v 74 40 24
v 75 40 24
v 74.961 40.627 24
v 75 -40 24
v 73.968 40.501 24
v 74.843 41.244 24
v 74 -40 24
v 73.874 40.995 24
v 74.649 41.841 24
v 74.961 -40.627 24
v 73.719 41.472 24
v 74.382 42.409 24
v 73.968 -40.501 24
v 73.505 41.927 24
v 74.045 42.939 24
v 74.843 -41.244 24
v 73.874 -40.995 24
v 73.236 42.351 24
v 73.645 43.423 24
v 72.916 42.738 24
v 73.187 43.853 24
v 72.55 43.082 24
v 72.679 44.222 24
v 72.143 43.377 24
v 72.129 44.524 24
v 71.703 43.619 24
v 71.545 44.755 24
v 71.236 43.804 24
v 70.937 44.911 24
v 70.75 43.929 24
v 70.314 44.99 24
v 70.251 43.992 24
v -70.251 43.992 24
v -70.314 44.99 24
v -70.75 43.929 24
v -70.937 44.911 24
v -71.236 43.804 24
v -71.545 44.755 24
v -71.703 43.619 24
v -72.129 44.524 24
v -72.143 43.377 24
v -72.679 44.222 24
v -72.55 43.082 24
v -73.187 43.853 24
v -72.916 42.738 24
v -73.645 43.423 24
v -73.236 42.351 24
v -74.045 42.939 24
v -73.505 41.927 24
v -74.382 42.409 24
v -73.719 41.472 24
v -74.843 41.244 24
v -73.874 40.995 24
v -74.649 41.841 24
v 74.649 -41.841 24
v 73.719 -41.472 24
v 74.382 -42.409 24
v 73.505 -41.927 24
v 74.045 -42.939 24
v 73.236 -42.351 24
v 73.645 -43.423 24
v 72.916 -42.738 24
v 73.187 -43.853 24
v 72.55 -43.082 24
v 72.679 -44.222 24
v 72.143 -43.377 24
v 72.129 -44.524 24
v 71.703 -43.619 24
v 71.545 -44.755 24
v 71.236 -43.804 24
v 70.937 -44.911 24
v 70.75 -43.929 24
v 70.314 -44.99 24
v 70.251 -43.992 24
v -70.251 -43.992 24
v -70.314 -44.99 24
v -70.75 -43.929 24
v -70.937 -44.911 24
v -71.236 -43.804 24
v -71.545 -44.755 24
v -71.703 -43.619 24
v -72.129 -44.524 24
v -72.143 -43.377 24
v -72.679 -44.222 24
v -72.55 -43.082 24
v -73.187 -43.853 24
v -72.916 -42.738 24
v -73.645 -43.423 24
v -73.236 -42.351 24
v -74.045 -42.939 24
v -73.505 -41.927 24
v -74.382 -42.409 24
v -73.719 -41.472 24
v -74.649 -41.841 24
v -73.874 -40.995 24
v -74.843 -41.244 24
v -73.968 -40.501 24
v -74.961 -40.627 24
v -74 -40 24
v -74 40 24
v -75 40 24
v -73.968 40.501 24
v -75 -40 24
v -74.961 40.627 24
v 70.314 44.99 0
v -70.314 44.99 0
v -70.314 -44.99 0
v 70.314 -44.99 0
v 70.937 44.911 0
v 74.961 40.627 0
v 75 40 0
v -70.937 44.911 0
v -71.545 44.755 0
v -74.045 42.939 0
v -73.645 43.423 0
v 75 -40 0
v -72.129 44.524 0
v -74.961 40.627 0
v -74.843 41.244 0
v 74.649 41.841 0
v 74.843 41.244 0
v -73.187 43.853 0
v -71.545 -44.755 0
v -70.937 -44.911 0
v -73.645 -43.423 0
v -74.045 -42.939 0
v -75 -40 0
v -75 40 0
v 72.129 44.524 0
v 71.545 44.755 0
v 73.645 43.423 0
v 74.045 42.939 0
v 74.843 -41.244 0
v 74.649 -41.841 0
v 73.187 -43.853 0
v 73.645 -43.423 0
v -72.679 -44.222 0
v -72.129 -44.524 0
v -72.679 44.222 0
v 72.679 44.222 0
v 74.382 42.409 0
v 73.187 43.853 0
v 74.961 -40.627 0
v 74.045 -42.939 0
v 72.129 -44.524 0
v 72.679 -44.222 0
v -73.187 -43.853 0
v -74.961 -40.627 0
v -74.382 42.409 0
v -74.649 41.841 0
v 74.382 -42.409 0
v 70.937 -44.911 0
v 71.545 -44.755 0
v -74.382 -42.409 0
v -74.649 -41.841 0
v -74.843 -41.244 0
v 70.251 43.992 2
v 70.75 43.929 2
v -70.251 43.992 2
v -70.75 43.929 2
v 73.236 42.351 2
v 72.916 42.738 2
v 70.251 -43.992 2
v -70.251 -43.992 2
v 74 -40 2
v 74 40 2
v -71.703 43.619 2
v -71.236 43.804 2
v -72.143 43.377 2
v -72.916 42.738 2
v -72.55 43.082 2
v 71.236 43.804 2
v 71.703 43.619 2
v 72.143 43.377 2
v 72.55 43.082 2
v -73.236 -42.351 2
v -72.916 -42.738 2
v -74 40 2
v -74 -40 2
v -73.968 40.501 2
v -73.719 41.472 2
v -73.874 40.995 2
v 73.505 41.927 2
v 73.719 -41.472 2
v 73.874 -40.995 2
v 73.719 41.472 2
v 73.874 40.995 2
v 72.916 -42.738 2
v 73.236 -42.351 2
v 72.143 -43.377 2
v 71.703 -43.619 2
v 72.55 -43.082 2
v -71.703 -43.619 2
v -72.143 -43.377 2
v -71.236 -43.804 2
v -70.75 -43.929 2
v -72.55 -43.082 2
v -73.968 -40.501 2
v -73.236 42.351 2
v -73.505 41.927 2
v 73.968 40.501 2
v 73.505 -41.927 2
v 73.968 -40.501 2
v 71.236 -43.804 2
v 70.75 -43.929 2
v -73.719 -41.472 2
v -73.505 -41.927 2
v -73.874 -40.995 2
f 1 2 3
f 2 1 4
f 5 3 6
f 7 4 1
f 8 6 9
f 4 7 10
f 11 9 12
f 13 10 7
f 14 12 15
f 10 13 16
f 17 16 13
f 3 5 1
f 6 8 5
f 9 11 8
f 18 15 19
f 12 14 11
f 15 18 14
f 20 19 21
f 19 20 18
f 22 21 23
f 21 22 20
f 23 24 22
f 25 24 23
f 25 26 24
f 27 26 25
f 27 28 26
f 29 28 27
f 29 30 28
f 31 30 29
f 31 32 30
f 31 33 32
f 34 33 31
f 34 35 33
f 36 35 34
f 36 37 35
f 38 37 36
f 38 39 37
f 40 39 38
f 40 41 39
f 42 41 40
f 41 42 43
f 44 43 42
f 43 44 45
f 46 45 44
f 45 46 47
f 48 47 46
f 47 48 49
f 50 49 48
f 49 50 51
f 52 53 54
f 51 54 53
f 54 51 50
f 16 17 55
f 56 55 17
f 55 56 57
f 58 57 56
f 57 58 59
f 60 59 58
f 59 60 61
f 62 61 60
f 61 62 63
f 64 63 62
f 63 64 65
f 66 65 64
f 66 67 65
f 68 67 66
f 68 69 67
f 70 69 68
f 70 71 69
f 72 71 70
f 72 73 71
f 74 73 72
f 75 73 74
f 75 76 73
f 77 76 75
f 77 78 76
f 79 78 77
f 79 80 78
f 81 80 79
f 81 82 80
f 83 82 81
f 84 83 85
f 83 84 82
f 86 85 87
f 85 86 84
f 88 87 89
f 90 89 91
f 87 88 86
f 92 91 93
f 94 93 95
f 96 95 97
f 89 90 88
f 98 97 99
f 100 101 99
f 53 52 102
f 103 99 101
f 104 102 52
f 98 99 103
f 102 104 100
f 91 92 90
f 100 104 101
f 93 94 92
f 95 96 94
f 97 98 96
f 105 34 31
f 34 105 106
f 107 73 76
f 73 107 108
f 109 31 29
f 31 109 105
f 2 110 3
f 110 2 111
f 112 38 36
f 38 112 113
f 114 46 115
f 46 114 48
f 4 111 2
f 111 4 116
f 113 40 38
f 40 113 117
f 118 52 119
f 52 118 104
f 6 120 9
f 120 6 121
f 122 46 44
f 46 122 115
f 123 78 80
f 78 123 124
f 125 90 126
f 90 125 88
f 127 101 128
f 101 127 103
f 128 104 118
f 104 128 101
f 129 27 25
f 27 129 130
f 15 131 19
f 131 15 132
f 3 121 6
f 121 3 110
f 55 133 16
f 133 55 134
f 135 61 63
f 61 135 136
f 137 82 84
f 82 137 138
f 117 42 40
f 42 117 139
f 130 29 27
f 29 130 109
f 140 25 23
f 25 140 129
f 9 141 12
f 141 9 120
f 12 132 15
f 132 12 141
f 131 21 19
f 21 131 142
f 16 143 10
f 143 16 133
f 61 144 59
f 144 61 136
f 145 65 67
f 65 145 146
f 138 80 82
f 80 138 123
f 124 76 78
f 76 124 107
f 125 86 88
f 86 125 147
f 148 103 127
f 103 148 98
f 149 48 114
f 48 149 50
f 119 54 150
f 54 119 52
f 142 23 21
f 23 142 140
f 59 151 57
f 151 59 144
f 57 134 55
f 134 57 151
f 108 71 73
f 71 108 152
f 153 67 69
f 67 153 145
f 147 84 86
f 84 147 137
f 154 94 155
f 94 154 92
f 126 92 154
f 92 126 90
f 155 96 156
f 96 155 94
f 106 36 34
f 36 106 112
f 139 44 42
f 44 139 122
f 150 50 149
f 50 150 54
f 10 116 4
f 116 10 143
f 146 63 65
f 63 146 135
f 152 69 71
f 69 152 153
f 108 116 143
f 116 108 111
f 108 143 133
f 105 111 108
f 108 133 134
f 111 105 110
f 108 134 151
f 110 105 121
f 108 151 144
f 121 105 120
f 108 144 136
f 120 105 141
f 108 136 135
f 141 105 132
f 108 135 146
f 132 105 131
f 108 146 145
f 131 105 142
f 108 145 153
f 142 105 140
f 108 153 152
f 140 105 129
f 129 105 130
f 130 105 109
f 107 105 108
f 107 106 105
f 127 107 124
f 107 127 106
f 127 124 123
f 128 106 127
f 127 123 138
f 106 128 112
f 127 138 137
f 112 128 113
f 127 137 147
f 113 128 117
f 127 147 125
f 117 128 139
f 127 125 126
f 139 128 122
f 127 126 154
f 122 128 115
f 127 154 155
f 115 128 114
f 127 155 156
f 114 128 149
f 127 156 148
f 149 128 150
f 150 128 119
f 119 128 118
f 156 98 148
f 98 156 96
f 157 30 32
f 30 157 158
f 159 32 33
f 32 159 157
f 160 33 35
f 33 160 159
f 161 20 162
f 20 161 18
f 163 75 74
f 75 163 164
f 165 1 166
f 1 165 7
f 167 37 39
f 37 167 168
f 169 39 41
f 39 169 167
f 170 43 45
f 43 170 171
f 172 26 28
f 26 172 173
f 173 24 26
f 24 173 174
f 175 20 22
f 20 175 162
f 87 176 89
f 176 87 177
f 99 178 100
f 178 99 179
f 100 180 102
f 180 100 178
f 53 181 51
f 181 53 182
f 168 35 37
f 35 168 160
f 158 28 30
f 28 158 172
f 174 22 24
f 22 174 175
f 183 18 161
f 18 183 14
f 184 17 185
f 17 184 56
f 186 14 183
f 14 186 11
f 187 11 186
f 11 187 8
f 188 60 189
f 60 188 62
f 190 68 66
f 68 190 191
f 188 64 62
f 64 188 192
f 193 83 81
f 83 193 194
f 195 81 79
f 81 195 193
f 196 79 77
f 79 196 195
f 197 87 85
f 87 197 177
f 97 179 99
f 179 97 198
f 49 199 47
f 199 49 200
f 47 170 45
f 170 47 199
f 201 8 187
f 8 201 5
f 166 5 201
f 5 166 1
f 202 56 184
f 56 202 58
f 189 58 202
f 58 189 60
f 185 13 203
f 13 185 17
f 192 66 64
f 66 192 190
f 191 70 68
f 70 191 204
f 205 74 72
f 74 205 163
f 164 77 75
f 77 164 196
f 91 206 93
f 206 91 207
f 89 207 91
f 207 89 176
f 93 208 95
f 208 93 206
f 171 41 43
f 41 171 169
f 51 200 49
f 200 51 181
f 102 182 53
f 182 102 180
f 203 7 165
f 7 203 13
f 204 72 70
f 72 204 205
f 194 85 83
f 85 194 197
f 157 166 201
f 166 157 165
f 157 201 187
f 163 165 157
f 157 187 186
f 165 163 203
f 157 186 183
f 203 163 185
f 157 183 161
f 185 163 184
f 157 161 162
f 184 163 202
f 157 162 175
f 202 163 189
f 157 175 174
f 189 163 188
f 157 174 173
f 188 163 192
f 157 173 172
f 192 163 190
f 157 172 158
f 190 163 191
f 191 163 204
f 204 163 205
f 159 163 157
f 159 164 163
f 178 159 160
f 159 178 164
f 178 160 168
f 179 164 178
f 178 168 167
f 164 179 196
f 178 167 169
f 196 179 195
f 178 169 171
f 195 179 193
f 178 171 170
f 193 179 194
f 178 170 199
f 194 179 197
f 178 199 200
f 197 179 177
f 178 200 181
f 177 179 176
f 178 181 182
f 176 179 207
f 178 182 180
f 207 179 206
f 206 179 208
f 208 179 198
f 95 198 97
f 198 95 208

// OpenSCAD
$fn = 50;


difference() {
	union() {
		hull() {
			translate(v = [-70.0000000000, 40.0000000000, 0]) {
				cylinder(h = 24, r = 5);
			}
			translate(v = [70.0000000000, 40.0000000000, 0]) {
				cylinder(h = 24, r = 5);
			}
			translate(v = [-70.0000000000, -40.0000000000, 0]) {
				cylinder(h = 24, r = 5);
			}
			translate(v = [70.0000000000, -40.0000000000, 0]) {
				cylinder(h = 24, r = 5);
			}
		}
	}
	union() {
		translate(v = [0, 0, 2]) {
			hull() {
				translate(v = [-70.0000000000, 40.0000000000, 0]) {
					cylinder(h = 22, r = 4);
				}
				translate(v = [70.0000000000, 40.0000000000, 0]) {
					cylinder(h = 22, r = 4);
				}
				translate(v = [-70.0000000000, -40.0000000000, 0]) {
					cylinder(h = 22, r = 4);
				}
				translate(v = [70.0000000000, -40.0000000000, 0]) {
					cylinder(h = 22, r = 4);
				}
			}
		}
	}
}
